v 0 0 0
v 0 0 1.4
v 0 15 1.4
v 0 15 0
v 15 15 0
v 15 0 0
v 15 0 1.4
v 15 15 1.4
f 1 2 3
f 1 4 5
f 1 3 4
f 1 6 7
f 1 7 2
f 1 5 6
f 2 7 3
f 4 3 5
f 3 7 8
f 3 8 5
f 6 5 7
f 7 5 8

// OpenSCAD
/* Warning, this is a very basic generator with a lot of approximation 
input data : [LFBGA, 4JX, 15x15x1.4mm, 288, , C, C04-00366C]
generated by com.zoubworld.electronics.cad.model3d.Basic
Date : Sun Feb 15 10:50:48 CET 2026
*/

//body
color("black")
translate([0,0,0])
cube([15.0,15.0,1.4], center=false);
